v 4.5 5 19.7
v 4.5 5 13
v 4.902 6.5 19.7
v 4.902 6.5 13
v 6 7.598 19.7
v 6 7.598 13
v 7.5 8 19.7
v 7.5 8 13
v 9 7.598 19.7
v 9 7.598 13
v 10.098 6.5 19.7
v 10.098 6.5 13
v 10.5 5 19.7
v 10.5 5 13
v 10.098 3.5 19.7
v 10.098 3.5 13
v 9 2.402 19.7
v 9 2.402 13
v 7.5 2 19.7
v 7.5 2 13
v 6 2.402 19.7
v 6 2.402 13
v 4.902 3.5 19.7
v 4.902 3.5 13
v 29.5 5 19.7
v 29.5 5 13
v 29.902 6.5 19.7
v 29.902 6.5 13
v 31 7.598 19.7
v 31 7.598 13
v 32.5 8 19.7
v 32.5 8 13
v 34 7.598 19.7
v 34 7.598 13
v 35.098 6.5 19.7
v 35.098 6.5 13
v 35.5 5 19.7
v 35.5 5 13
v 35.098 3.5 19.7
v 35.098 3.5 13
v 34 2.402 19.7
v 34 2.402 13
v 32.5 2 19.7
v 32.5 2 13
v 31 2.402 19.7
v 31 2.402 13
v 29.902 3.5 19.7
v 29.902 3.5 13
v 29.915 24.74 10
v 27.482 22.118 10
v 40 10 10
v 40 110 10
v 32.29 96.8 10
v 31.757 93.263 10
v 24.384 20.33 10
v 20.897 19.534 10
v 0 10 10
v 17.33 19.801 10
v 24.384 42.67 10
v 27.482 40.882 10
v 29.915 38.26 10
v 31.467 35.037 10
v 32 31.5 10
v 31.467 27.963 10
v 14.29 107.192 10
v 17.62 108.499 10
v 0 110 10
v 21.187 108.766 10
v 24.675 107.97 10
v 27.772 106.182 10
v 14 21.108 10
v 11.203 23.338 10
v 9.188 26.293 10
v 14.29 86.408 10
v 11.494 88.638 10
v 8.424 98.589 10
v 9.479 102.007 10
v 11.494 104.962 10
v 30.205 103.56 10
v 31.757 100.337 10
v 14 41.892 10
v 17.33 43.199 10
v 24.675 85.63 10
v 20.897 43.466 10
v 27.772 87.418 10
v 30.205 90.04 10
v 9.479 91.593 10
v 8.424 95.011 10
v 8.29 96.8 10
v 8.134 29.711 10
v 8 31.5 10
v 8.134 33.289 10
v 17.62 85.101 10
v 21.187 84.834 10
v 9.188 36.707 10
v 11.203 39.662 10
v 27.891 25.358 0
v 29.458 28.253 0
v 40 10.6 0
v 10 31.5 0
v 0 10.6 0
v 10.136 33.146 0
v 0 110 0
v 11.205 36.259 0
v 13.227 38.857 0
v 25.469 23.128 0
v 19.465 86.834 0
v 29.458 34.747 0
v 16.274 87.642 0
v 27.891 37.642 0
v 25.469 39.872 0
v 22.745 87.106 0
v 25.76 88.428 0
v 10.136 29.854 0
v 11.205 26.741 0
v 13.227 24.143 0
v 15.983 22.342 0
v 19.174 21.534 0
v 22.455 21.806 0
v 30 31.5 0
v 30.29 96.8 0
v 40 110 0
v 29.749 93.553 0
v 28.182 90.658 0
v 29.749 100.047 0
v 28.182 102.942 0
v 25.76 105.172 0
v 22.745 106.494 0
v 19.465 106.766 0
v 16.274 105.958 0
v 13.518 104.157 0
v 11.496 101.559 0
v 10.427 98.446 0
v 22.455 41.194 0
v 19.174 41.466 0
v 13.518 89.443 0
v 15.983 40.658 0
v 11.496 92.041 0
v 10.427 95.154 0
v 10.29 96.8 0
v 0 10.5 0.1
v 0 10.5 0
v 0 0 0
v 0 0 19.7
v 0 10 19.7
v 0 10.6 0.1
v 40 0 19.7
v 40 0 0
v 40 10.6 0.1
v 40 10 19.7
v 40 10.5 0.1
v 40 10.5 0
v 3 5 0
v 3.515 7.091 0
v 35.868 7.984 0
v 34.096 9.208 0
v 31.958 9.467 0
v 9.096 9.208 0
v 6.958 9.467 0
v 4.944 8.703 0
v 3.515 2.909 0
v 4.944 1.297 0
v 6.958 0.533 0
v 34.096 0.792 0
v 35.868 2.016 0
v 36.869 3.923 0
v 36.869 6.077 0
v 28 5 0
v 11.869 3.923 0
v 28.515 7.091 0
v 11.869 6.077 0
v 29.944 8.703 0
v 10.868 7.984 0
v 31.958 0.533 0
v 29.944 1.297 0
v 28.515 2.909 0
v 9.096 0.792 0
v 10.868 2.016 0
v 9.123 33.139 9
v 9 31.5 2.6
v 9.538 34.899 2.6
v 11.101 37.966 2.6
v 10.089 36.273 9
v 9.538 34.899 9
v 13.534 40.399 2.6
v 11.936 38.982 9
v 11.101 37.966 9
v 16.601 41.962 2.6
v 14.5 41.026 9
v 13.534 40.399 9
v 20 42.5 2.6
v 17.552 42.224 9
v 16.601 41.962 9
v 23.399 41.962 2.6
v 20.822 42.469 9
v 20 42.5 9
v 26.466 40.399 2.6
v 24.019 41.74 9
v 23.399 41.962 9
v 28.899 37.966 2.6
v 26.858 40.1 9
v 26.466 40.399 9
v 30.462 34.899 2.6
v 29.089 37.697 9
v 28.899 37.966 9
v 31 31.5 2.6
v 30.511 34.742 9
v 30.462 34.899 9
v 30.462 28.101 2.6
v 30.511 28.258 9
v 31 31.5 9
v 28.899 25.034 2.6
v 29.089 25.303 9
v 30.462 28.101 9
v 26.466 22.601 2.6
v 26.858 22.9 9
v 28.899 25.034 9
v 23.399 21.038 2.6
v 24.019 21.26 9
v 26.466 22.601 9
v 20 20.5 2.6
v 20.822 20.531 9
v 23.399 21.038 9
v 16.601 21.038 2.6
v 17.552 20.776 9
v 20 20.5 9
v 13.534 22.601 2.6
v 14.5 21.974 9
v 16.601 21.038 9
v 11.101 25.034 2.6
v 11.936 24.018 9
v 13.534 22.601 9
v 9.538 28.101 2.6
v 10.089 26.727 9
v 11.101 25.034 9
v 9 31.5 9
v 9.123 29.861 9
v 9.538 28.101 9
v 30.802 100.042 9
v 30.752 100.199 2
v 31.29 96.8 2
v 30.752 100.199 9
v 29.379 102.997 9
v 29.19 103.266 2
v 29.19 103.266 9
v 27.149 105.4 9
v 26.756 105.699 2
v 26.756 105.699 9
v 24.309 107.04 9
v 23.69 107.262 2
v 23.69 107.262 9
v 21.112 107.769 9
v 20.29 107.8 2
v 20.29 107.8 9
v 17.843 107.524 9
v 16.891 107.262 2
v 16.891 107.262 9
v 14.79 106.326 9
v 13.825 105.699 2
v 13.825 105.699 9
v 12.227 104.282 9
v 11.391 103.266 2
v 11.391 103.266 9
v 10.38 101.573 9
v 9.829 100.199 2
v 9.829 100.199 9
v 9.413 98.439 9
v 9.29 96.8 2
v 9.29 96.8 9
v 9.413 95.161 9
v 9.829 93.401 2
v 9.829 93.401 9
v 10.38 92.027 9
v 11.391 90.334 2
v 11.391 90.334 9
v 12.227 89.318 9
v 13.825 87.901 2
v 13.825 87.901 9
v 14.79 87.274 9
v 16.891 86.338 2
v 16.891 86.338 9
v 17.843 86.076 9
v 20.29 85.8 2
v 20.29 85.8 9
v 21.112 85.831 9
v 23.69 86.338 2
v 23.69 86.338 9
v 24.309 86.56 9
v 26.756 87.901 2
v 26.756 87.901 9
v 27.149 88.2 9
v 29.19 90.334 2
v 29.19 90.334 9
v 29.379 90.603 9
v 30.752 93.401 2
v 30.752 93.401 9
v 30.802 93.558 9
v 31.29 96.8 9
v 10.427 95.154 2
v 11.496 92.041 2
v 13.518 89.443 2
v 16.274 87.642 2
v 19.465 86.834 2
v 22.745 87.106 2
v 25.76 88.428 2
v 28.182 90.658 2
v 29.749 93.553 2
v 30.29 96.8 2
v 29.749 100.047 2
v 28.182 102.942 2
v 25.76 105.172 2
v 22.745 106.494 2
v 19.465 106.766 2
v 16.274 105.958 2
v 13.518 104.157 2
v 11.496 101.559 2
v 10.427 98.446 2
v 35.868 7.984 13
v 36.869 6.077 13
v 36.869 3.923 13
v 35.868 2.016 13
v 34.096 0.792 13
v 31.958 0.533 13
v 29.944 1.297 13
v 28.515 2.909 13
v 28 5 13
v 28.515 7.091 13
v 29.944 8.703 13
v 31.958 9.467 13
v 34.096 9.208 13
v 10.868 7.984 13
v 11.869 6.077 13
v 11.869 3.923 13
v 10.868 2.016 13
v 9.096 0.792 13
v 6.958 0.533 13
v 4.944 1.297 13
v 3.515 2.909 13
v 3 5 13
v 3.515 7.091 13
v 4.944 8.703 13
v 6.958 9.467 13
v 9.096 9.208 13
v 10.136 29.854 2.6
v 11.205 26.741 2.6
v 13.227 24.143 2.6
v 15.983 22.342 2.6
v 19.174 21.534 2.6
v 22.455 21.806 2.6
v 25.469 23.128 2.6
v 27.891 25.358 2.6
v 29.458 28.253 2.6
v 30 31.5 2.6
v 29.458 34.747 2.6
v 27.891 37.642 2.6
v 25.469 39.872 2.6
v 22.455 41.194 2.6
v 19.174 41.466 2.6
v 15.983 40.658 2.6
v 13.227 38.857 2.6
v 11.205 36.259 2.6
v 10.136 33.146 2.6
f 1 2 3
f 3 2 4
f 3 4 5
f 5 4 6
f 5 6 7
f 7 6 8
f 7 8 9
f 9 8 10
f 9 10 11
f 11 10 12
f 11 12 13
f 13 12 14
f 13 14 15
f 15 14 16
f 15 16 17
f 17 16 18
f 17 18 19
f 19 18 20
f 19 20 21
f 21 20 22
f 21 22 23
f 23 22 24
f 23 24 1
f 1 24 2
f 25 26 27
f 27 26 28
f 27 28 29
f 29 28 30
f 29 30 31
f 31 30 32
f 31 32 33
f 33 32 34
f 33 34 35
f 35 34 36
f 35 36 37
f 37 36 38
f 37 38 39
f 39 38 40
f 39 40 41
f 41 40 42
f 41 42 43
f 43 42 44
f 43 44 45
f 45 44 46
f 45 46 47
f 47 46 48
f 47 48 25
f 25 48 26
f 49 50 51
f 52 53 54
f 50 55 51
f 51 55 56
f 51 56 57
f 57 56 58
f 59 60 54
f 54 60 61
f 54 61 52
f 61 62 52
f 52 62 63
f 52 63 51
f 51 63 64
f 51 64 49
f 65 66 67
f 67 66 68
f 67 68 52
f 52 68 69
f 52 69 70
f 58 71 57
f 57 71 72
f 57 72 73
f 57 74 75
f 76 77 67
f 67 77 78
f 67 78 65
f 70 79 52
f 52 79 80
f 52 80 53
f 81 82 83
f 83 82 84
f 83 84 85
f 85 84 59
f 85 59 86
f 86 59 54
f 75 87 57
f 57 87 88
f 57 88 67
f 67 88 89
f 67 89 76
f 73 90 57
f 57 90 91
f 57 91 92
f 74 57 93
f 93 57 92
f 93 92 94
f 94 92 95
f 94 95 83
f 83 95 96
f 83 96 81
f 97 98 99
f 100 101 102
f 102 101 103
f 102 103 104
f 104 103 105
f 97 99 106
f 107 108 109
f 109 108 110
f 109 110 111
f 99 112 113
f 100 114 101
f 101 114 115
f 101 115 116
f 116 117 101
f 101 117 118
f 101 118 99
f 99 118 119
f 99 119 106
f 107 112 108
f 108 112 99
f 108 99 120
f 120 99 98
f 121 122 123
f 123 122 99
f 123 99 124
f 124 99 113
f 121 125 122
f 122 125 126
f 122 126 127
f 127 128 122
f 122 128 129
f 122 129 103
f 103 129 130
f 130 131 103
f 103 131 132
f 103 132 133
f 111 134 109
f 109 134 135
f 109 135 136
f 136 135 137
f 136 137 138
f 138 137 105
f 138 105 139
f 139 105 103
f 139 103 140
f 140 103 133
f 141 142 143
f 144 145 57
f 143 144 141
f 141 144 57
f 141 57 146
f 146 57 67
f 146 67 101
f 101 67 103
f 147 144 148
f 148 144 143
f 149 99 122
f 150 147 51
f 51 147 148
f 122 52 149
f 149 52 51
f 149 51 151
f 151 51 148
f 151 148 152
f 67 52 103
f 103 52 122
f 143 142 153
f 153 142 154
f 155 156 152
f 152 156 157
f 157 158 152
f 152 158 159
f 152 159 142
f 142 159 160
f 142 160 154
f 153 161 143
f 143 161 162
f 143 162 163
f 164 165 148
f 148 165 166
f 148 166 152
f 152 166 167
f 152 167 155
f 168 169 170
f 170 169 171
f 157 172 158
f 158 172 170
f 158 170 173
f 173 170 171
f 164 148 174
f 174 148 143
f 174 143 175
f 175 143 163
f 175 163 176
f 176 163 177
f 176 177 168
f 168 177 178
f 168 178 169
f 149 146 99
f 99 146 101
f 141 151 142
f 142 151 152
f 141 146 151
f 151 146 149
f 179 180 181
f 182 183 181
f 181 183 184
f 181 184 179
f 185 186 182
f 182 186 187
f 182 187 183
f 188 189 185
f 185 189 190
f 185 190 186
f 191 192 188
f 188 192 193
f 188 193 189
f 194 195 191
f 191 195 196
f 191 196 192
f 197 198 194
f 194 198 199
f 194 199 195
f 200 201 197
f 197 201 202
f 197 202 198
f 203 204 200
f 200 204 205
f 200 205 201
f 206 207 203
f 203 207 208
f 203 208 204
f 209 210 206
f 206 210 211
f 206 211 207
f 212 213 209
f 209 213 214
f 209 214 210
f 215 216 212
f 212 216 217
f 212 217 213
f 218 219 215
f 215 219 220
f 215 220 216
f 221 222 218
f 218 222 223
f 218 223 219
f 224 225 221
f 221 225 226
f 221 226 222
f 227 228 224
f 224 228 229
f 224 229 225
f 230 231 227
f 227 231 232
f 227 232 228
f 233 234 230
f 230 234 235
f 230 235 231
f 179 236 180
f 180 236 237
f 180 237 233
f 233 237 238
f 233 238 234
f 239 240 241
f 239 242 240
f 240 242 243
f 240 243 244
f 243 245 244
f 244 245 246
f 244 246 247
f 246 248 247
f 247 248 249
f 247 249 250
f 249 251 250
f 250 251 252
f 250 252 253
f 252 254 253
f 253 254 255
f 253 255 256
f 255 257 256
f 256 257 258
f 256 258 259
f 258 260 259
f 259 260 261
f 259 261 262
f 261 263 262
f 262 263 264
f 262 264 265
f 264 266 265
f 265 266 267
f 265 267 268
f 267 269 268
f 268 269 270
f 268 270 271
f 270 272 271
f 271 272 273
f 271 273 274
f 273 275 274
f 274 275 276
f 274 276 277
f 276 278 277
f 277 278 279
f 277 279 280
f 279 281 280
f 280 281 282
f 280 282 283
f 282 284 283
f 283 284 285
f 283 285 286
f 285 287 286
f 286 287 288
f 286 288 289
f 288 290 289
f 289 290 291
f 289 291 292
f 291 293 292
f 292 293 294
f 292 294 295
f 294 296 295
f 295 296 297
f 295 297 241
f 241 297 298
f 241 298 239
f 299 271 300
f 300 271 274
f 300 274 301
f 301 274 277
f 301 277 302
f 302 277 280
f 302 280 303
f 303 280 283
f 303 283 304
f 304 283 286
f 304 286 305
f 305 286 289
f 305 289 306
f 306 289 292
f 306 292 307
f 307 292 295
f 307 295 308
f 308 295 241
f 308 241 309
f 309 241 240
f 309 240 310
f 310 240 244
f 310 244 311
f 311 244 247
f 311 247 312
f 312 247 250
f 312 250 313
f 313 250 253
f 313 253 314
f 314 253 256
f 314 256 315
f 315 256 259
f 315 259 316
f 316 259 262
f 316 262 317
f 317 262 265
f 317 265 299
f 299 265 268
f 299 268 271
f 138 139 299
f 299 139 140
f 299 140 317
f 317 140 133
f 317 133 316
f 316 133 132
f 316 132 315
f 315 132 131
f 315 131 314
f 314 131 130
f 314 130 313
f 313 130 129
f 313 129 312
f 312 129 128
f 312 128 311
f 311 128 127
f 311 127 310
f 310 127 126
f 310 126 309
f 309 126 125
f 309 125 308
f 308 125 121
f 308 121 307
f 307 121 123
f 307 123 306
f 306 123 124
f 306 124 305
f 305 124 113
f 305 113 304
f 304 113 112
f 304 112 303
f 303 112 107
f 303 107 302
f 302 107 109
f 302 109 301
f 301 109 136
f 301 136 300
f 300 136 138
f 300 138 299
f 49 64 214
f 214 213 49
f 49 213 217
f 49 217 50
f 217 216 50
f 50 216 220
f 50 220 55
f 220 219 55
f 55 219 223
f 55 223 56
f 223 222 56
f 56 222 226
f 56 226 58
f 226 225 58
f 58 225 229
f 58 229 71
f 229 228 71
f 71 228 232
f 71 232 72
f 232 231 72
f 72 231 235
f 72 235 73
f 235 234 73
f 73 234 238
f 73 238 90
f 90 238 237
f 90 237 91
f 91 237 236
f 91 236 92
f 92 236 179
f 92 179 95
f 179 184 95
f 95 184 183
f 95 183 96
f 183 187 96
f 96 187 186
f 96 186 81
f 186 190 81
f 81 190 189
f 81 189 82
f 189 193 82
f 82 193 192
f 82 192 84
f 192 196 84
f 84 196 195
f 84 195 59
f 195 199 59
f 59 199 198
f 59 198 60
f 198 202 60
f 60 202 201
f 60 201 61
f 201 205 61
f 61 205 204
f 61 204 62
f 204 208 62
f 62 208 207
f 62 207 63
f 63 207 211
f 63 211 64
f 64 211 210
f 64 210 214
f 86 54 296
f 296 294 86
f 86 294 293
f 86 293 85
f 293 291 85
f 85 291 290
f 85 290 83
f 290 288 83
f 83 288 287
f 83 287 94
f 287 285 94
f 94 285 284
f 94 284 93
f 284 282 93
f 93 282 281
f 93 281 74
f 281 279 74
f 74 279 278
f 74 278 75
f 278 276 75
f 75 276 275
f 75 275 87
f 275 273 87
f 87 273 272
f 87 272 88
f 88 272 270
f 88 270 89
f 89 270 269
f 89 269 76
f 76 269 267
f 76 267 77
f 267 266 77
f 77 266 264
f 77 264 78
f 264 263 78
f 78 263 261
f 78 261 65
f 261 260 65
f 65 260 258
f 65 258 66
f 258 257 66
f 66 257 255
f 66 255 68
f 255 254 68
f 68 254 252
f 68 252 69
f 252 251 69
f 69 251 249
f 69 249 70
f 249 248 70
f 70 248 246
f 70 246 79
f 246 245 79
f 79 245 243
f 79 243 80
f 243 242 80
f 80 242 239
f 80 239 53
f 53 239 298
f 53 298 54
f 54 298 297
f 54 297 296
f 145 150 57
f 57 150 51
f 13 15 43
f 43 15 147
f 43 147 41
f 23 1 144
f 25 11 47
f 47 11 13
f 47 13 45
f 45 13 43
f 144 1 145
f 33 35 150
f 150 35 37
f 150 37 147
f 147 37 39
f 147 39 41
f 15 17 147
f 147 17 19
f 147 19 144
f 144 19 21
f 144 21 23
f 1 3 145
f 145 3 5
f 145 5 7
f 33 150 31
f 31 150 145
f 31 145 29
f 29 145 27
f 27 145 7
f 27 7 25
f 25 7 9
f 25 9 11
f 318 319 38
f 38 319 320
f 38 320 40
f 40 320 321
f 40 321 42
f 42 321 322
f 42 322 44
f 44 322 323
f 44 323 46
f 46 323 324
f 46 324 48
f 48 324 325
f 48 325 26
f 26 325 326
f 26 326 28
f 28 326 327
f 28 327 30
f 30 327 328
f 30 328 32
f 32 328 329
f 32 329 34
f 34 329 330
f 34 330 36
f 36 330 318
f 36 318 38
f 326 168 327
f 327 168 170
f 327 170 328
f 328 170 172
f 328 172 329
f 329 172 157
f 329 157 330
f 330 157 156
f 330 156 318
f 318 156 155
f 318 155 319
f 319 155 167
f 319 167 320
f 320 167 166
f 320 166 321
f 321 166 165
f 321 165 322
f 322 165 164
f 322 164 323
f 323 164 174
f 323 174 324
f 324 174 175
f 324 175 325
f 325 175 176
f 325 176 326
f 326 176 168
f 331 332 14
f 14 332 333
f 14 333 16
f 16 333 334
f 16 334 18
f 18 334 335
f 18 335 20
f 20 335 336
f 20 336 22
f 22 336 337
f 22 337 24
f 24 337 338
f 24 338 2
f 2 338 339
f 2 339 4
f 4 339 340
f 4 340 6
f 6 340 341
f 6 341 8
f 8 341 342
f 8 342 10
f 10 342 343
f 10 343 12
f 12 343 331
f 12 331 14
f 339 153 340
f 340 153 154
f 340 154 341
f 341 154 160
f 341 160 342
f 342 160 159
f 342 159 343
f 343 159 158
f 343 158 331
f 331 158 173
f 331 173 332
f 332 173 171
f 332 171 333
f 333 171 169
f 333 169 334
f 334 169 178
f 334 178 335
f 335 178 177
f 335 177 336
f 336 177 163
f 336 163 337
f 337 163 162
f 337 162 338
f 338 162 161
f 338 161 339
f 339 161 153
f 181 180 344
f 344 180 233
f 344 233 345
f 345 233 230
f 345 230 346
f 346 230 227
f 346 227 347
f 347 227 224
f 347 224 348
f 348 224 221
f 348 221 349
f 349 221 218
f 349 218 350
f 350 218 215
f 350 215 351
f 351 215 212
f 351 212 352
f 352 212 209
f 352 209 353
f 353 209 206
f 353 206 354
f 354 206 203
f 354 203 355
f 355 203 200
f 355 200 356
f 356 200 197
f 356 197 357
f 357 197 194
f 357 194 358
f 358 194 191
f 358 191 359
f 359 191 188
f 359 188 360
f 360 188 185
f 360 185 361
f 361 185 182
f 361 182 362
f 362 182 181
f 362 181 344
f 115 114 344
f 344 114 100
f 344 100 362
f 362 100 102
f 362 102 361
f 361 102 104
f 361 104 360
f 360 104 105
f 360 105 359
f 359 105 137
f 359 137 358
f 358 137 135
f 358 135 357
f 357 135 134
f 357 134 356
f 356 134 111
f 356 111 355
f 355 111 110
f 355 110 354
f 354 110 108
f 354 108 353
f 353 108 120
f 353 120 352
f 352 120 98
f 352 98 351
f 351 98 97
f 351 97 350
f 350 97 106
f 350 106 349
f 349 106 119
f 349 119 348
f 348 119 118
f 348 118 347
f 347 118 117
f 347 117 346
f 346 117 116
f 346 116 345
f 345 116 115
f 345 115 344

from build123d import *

# Parameters (mm, degrees)
SKIZZE1_W                             = 40
SKIZZE1_H                             = 110
AUFSATZ_LINEAR_AUSTRAGEN1_DEPTH       = 10
SKIZZE2_W                             = 40
SKIZZE2_H                             = 0.1
SCHNITT_LINEAR_AUSTRAGEN1_DEPTH       = 0.1
SKIZZE3_R                             = 11
SCHNITT_LINEAR_AUSTRAGEN2_DEPTH       = 11
SKIZZE5_R                             = 11
SCHNITT_LINEAR_AUSTRAGEN4_DEPTH       = 8
SKIZZE6_R                             = 10
SCHNITT_LINEAR_AUSTRAGEN5_DEPTH       = 8
FASE1_SIZE                            = 1
SKIZZE10_W                            = 40
SKIZZE10_H                            = 10
AUFSATZ_LINEAR_AUSTRAGEN2_DEPTH       = 9.7
SKIZZE11_R                            = 3
SCHNITT_LINEAR_AUSTRAGEN6_DEPTH       = 21
SKIZZE12_R                            = 4.5
SCHNITT_LINEAR_AUSTRAGEN11_DEPTH      = 13
SKIZZE15_R                            = 15.675658378
AUFSATZ_LINEAR_AUSTRAGEN3_DEPTH       = 2.5
SCHNITT_LINEAR_AUSTRAGEN13_DEPTH      = 3
SCHNITT_LINEAR_AUSTRAGEN13_DEPTH_BACK = 15
SKIZZE13_R                            = 10


with BuildPart() as part:
    # Skizze1 → Aufsatz-Linear austragen1 (new body)
    with BuildSketch(Plane.XY):
        with Locations((20, 55)):
            Rectangle(SKIZZE1_W, SKIZZE1_H)
    extrude(amount=AUFSATZ_LINEAR_AUSTRAGEN1_DEPTH)

    # Skizze2 → Schnitt-Linear austragen1 (cut)
    with BuildSketch(Plane(origin=(0, 0, 0), x_dir=(-1, 0, 0), z_dir=(0, 0, -1))):
        with Locations((-20, 10.55)):
            Rectangle(SKIZZE2_W, SKIZZE2_H)
    extrude(amount=-SCHNITT_LINEAR_AUSTRAGEN1_DEPTH, mode=Mode.SUBTRACT)

    # Skizze3 → Schnitt-Linear austragen2 (cut)
    with BuildSketch(Plane(origin=(0, 0, 0.1), x_dir=(-1, 0, 0), z_dir=(0, 0, -1))):
        with Locations((-20, 31.5)):
            Circle(SKIZZE3_R)
    extrude(amount=-SCHNITT_LINEAR_AUSTRAGEN2_DEPTH, mode=Mode.SUBTRACT)

    # Skizze5 → Schnitt-Linear austragen4 (cut)
    with BuildSketch(Plane.XY.offset(10)):
        with Locations((20.290455997, 96.8)):
            Circle(SKIZZE5_R)
    extrude(amount=-SCHNITT_LINEAR_AUSTRAGEN4_DEPTH, mode=Mode.SUBTRACT)

    # Skizze6 → Schnitt-Linear austragen5 (cut)
    with BuildSketch(Plane.XY.offset(2)):
        with Locations((20.290455997, 96.8)):
            Circle(SKIZZE6_R)
    extrude(amount=-SCHNITT_LINEAR_AUSTRAGEN5_DEPTH, mode=Mode.SUBTRACT)

    # Fase1
    fase1_edges = [part.edges().sort_by_distance(p)[0] for p in [
        (31, 31.5, 10),
        (9.290455997, 96.8, 10),
    ]]
    chamfer(fase1_edges, length=FASE1_SIZE)

    # Skizze10 → Aufsatz-Linear austragen2 (add)
    with BuildSketch(Plane.XY.offset(10)):
        with Locations((20, 5)):
            Rectangle(SKIZZE10_W, SKIZZE10_H)
    extrude(amount=AUFSATZ_LINEAR_AUSTRAGEN2_DEPTH)

    # Skizze11 → Schnitt-Linear austragen6 (cut)
    with BuildSketch(Plane(origin=(0, 0, 0), x_dir=(-1, 0, 0), z_dir=(0, 0, -1))):
        with Locations((-32.5, 5)):
            Circle(SKIZZE11_R)
        with Locations((-7.5, 5)):
            Circle(SKIZZE11_R)
    extrude(amount=-SCHNITT_LINEAR_AUSTRAGEN6_DEPTH, mode=Mode.SUBTRACT)

    # Skizze12 → Schnitt-Linear austragen11 (cut)
    with BuildSketch(Plane(origin=(0, 0, 0), x_dir=(-1, 0, 0), z_dir=(0, 0, -1))):
        with Locations((-32.5, 5)):
            Circle(SKIZZE12_R)
        with Locations((-7.5, 5)):
            Circle(SKIZZE12_R)
    extrude(amount=-SCHNITT_LINEAR_AUSTRAGEN11_DEPTH, mode=Mode.SUBTRACT)

    # Skizze15 → Aufsatz-Linear austragen3 (add)
    with BuildSketch(Plane.XY.offset(0.1)):
        with Locations((20, 31.5)):
            Circle(SKIZZE15_R)
    extrude(amount=AUFSATZ_LINEAR_AUSTRAGEN3_DEPTH)

    # Skizze13 → Schnitt-Linear austragen13 (cut, two sides: drawn at the far end of the back side and taken through both)
    with BuildSketch(Plane(origin=(0, 0, 0.1), x_dir=(-1, 0, 0), z_dir=(0, 0, -1)).offset(-SCHNITT_LINEAR_AUSTRAGEN13_DEPTH_BACK)):
        with Locations(Location((-20, 31.5, 0), (0, 0, 180))):
            Circle(SKIZZE13_R)
    extrude(amount=SCHNITT_LINEAR_AUSTRAGEN13_DEPTH + SCHNITT_LINEAR_AUSTRAGEN13_DEPTH_BACK, mode=Mode.SUBTRACT)


solid = part.part
